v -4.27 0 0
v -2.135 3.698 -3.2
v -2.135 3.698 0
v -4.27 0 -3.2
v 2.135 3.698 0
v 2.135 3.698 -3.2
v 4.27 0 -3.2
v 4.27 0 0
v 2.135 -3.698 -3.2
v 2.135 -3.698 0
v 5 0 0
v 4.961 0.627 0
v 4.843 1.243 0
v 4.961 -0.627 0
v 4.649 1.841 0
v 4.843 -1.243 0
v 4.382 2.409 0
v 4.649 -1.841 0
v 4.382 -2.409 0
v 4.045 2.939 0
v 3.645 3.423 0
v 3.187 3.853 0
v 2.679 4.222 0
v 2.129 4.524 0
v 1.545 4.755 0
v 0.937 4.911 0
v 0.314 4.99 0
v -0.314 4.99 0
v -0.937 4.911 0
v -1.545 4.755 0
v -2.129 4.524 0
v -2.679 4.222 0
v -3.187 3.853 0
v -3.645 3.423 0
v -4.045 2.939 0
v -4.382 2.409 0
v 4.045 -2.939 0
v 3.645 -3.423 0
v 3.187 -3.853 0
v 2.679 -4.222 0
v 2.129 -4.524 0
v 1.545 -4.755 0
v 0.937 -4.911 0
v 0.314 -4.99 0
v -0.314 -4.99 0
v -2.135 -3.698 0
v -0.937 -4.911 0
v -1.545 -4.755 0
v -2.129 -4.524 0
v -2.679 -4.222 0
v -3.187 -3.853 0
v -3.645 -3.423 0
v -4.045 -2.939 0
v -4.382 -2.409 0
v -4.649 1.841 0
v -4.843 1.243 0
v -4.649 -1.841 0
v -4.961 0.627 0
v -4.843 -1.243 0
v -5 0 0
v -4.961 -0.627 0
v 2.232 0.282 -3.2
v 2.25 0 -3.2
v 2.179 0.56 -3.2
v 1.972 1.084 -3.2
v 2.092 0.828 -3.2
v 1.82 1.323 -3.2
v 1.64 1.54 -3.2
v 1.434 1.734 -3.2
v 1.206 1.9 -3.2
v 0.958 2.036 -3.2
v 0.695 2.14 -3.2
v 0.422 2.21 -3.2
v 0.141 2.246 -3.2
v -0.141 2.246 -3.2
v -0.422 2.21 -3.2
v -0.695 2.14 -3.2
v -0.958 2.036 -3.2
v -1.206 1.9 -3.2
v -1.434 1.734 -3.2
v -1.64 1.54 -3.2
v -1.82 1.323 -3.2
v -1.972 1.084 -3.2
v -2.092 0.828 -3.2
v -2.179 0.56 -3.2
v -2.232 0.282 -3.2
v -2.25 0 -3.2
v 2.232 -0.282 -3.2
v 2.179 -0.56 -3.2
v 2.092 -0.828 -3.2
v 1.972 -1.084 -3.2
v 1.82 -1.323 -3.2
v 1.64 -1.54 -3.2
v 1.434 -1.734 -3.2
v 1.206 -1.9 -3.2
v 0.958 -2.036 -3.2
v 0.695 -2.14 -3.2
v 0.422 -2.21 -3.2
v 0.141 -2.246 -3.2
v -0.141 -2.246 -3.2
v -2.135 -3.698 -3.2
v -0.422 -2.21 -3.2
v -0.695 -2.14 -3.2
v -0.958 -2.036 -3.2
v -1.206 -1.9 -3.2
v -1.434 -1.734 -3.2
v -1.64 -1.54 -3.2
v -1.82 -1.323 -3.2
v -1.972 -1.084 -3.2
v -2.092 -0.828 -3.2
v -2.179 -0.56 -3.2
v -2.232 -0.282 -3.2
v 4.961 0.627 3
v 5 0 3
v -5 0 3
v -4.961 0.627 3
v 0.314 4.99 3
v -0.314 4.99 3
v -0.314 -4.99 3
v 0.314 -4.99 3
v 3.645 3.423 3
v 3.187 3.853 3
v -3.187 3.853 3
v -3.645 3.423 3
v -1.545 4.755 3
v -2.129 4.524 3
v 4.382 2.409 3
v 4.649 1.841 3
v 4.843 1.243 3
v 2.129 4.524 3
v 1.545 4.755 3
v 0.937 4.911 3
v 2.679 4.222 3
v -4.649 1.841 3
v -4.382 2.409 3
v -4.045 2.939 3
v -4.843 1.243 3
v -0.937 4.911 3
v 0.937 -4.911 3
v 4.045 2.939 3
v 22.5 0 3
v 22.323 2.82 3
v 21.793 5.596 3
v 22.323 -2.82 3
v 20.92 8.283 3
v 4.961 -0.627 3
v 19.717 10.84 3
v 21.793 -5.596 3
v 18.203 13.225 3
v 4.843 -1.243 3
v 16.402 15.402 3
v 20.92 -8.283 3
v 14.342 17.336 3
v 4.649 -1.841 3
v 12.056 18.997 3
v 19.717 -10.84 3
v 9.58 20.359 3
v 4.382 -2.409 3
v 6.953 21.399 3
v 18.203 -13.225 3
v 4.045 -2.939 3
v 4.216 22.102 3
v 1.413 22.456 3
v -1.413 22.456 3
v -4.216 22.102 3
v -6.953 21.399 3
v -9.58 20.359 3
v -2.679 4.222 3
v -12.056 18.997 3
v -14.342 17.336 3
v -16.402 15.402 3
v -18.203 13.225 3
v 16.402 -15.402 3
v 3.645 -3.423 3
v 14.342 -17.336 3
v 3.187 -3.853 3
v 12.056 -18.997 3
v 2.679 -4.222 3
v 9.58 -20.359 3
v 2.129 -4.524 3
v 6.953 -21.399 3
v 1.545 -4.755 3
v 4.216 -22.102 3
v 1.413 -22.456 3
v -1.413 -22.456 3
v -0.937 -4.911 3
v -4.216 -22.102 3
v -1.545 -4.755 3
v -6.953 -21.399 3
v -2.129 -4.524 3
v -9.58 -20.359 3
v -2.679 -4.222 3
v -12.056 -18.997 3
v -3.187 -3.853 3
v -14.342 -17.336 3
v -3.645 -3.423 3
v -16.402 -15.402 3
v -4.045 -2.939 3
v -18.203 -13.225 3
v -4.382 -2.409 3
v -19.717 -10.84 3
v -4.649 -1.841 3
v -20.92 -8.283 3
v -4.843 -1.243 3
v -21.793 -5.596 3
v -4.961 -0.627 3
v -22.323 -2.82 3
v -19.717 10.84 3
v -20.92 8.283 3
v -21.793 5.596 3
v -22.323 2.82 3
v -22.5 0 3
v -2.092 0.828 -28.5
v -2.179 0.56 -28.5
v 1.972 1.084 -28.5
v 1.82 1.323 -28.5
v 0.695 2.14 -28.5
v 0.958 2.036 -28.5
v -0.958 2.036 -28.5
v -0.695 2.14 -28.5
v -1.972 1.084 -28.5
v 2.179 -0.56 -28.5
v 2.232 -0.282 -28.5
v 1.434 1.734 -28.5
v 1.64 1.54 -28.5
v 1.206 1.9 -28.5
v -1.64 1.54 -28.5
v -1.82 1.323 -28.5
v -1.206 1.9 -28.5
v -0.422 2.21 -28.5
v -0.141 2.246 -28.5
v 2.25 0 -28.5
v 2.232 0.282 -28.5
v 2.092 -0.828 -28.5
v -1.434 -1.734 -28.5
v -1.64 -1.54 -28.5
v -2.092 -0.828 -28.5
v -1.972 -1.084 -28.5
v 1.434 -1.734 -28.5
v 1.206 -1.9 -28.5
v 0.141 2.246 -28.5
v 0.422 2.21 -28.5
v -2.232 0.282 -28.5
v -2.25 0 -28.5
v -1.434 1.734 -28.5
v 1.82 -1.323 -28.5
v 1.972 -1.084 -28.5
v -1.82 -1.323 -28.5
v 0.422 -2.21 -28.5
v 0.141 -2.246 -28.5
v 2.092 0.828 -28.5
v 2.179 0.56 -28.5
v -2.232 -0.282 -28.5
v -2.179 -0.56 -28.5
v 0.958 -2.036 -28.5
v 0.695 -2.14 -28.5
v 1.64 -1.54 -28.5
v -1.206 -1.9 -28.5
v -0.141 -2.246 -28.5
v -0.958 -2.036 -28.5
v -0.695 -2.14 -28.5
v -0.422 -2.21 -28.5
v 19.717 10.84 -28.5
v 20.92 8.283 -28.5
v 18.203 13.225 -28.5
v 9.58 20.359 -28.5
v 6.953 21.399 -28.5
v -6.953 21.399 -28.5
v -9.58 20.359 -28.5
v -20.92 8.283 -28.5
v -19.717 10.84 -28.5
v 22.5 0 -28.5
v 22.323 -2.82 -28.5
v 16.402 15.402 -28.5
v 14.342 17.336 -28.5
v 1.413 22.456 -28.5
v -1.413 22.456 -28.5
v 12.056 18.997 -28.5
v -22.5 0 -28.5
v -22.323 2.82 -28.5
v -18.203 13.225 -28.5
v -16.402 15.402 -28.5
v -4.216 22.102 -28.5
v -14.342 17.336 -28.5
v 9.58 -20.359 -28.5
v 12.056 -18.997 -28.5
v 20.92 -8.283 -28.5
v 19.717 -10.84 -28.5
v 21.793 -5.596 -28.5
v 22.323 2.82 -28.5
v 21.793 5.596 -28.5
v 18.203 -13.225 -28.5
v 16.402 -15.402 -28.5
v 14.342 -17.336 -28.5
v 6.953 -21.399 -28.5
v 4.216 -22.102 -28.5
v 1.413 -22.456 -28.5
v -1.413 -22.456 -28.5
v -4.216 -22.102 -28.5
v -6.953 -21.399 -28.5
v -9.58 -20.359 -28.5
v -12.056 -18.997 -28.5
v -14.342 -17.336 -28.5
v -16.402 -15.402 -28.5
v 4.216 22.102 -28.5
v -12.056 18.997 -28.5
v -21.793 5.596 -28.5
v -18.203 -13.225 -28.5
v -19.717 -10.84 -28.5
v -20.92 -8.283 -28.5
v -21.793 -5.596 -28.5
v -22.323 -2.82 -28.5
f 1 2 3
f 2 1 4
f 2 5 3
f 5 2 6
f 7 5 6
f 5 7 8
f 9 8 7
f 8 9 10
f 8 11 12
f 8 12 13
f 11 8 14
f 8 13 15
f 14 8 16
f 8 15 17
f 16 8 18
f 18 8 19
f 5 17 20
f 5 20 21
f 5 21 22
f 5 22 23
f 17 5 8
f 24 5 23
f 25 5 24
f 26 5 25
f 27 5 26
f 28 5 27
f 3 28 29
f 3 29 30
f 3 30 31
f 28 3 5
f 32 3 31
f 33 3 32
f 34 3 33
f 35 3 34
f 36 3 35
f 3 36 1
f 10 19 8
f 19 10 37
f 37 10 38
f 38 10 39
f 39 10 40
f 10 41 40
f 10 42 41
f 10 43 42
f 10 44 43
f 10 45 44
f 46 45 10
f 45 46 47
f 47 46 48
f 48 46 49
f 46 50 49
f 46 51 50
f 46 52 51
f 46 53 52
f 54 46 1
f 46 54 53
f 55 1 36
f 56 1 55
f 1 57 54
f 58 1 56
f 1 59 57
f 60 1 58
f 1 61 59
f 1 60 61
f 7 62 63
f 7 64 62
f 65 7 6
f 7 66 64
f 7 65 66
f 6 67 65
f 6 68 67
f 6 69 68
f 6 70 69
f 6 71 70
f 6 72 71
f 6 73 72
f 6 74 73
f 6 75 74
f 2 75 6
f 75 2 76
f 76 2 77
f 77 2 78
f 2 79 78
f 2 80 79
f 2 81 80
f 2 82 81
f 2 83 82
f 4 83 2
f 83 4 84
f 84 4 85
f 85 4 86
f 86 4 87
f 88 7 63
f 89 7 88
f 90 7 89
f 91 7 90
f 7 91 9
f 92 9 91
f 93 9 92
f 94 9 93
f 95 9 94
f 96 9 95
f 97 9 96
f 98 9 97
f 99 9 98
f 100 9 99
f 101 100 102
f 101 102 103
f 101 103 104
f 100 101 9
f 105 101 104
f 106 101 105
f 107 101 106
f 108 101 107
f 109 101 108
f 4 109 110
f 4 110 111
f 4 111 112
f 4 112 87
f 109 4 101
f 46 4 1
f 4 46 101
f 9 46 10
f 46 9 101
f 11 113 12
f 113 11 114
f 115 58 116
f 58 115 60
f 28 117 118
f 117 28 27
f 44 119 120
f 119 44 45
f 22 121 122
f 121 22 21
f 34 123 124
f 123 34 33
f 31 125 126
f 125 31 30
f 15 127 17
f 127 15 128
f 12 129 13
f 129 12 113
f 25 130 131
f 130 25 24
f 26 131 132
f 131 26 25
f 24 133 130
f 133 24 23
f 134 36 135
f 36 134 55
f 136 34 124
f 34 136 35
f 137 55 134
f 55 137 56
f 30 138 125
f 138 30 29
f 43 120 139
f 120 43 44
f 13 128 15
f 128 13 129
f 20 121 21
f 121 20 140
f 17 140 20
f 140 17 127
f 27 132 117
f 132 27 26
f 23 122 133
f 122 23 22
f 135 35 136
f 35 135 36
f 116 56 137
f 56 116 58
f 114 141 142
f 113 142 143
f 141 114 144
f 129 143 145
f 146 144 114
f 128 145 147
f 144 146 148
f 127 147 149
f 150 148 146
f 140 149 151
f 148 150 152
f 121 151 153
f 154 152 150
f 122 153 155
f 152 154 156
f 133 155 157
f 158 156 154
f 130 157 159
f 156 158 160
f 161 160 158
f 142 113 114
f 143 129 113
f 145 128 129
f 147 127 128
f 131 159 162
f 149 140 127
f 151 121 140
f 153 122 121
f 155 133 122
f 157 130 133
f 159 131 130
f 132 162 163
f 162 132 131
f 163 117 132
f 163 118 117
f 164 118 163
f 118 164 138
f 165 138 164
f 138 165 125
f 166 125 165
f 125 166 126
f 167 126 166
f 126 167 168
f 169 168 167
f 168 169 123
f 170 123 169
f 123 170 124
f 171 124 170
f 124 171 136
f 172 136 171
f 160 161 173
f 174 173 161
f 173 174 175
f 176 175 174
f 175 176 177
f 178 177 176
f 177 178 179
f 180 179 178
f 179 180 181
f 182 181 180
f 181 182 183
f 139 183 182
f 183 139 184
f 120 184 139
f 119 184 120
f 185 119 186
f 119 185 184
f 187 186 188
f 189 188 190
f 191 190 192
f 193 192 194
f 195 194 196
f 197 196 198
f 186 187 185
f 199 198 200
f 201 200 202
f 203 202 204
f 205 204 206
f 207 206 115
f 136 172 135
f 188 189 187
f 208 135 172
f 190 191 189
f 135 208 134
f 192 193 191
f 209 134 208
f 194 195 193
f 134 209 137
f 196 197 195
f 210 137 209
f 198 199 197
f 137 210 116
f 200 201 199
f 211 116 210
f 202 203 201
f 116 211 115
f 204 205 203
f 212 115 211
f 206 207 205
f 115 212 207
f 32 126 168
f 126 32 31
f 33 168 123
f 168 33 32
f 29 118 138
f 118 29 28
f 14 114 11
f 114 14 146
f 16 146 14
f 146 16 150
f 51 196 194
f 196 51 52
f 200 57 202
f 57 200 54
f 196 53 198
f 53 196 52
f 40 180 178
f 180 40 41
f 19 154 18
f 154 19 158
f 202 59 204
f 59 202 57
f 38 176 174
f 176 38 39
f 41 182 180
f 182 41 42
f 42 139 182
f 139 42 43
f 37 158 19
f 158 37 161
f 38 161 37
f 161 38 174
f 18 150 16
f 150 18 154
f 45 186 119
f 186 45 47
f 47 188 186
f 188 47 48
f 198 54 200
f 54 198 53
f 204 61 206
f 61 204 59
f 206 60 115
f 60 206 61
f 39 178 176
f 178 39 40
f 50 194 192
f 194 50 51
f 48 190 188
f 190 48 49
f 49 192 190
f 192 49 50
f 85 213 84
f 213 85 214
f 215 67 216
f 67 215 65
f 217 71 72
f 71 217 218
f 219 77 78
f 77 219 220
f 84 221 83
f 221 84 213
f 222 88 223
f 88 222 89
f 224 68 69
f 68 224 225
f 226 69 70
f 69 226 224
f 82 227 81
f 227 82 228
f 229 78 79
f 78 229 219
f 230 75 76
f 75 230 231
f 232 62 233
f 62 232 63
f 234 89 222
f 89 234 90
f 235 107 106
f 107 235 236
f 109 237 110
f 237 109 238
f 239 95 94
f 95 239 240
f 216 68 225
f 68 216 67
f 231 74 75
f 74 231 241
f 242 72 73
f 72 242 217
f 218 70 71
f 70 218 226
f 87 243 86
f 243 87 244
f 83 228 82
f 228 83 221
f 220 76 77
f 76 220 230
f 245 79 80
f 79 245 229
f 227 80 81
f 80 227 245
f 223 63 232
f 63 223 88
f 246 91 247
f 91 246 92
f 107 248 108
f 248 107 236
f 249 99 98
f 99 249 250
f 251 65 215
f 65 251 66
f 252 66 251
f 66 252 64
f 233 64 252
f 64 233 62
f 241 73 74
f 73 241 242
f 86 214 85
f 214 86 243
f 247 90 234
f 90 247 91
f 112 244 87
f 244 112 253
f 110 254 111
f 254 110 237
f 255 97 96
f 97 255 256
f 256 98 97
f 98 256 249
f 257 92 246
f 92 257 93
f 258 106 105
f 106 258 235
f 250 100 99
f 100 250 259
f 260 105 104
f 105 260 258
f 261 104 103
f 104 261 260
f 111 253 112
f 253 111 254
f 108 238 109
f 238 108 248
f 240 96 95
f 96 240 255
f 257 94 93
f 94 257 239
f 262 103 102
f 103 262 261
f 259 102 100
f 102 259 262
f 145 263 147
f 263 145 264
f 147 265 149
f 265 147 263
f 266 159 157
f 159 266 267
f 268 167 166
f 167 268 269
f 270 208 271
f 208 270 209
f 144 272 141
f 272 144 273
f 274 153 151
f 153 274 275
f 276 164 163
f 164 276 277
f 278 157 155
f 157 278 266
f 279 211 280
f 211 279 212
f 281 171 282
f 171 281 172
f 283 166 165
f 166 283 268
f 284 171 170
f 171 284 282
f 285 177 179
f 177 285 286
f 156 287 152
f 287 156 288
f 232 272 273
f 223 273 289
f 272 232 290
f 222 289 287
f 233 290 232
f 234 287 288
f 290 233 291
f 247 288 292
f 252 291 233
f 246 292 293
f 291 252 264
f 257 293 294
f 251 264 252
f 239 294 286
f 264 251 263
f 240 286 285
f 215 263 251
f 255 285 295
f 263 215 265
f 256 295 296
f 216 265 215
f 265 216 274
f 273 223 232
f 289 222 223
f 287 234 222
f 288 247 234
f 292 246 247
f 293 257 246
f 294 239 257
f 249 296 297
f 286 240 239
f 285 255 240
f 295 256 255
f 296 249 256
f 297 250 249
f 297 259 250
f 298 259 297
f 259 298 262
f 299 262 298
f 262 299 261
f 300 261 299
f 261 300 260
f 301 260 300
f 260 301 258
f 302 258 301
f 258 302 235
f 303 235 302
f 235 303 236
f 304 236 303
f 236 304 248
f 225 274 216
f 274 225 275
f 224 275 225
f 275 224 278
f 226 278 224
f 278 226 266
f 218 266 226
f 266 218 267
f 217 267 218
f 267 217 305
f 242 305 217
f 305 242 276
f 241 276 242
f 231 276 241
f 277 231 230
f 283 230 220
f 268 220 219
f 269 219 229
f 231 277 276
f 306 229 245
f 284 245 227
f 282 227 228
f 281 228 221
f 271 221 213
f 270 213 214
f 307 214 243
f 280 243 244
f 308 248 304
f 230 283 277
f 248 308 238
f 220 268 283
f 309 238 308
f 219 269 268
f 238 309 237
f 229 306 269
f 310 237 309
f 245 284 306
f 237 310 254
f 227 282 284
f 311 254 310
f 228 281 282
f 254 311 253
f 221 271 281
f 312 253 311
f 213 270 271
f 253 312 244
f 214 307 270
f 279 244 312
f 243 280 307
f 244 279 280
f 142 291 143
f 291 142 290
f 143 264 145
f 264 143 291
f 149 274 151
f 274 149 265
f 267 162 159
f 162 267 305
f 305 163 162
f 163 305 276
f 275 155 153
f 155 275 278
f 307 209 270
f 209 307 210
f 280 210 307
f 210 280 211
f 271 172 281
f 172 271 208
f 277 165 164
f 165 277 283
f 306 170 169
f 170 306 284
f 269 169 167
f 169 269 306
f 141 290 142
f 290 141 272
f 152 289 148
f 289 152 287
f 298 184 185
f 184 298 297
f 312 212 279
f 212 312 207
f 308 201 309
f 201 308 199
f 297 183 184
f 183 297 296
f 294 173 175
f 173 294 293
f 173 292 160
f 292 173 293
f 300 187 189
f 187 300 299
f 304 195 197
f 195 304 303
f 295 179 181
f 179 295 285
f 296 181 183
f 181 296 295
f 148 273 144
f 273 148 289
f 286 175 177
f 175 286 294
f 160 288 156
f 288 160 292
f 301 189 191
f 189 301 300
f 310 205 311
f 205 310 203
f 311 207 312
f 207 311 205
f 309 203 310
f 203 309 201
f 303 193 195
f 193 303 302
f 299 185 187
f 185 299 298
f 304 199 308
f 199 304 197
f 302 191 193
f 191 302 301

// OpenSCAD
$fn = 50;

difference() {
	union() {
		translate(v = [0, 0, -28.5]) {
			cylinder(h = 31.5, r = 22.5);
		}
	}
	union() {
		translate(v = [0, 0, 0]) {
			rotate(a = [0, 0, 0]) {
				difference() {
					union() {
						translate(v = [0, 0, -3.2]) {
							linear_extrude(height = 3.2) {
								polygon(points = [[4.2698, 0.0], [2.1349000000000005, 3.697755269078796], [-2.134899999999999, 3.6977552690787965], [-4.2698, 5.228996902999369e-16], [-2.134900000000002, -3.6977552690787956], [2.1348999999999974, -3.697755269078798]]);
							}
						}
					}
					union();
				}
			}
		}
		#cylinder(h = 3, r = 5.0);
		#translate(v = [0, 0, -100.0]) {
			cylinder(h = 200, r = 2.25);
		}
	}
}
